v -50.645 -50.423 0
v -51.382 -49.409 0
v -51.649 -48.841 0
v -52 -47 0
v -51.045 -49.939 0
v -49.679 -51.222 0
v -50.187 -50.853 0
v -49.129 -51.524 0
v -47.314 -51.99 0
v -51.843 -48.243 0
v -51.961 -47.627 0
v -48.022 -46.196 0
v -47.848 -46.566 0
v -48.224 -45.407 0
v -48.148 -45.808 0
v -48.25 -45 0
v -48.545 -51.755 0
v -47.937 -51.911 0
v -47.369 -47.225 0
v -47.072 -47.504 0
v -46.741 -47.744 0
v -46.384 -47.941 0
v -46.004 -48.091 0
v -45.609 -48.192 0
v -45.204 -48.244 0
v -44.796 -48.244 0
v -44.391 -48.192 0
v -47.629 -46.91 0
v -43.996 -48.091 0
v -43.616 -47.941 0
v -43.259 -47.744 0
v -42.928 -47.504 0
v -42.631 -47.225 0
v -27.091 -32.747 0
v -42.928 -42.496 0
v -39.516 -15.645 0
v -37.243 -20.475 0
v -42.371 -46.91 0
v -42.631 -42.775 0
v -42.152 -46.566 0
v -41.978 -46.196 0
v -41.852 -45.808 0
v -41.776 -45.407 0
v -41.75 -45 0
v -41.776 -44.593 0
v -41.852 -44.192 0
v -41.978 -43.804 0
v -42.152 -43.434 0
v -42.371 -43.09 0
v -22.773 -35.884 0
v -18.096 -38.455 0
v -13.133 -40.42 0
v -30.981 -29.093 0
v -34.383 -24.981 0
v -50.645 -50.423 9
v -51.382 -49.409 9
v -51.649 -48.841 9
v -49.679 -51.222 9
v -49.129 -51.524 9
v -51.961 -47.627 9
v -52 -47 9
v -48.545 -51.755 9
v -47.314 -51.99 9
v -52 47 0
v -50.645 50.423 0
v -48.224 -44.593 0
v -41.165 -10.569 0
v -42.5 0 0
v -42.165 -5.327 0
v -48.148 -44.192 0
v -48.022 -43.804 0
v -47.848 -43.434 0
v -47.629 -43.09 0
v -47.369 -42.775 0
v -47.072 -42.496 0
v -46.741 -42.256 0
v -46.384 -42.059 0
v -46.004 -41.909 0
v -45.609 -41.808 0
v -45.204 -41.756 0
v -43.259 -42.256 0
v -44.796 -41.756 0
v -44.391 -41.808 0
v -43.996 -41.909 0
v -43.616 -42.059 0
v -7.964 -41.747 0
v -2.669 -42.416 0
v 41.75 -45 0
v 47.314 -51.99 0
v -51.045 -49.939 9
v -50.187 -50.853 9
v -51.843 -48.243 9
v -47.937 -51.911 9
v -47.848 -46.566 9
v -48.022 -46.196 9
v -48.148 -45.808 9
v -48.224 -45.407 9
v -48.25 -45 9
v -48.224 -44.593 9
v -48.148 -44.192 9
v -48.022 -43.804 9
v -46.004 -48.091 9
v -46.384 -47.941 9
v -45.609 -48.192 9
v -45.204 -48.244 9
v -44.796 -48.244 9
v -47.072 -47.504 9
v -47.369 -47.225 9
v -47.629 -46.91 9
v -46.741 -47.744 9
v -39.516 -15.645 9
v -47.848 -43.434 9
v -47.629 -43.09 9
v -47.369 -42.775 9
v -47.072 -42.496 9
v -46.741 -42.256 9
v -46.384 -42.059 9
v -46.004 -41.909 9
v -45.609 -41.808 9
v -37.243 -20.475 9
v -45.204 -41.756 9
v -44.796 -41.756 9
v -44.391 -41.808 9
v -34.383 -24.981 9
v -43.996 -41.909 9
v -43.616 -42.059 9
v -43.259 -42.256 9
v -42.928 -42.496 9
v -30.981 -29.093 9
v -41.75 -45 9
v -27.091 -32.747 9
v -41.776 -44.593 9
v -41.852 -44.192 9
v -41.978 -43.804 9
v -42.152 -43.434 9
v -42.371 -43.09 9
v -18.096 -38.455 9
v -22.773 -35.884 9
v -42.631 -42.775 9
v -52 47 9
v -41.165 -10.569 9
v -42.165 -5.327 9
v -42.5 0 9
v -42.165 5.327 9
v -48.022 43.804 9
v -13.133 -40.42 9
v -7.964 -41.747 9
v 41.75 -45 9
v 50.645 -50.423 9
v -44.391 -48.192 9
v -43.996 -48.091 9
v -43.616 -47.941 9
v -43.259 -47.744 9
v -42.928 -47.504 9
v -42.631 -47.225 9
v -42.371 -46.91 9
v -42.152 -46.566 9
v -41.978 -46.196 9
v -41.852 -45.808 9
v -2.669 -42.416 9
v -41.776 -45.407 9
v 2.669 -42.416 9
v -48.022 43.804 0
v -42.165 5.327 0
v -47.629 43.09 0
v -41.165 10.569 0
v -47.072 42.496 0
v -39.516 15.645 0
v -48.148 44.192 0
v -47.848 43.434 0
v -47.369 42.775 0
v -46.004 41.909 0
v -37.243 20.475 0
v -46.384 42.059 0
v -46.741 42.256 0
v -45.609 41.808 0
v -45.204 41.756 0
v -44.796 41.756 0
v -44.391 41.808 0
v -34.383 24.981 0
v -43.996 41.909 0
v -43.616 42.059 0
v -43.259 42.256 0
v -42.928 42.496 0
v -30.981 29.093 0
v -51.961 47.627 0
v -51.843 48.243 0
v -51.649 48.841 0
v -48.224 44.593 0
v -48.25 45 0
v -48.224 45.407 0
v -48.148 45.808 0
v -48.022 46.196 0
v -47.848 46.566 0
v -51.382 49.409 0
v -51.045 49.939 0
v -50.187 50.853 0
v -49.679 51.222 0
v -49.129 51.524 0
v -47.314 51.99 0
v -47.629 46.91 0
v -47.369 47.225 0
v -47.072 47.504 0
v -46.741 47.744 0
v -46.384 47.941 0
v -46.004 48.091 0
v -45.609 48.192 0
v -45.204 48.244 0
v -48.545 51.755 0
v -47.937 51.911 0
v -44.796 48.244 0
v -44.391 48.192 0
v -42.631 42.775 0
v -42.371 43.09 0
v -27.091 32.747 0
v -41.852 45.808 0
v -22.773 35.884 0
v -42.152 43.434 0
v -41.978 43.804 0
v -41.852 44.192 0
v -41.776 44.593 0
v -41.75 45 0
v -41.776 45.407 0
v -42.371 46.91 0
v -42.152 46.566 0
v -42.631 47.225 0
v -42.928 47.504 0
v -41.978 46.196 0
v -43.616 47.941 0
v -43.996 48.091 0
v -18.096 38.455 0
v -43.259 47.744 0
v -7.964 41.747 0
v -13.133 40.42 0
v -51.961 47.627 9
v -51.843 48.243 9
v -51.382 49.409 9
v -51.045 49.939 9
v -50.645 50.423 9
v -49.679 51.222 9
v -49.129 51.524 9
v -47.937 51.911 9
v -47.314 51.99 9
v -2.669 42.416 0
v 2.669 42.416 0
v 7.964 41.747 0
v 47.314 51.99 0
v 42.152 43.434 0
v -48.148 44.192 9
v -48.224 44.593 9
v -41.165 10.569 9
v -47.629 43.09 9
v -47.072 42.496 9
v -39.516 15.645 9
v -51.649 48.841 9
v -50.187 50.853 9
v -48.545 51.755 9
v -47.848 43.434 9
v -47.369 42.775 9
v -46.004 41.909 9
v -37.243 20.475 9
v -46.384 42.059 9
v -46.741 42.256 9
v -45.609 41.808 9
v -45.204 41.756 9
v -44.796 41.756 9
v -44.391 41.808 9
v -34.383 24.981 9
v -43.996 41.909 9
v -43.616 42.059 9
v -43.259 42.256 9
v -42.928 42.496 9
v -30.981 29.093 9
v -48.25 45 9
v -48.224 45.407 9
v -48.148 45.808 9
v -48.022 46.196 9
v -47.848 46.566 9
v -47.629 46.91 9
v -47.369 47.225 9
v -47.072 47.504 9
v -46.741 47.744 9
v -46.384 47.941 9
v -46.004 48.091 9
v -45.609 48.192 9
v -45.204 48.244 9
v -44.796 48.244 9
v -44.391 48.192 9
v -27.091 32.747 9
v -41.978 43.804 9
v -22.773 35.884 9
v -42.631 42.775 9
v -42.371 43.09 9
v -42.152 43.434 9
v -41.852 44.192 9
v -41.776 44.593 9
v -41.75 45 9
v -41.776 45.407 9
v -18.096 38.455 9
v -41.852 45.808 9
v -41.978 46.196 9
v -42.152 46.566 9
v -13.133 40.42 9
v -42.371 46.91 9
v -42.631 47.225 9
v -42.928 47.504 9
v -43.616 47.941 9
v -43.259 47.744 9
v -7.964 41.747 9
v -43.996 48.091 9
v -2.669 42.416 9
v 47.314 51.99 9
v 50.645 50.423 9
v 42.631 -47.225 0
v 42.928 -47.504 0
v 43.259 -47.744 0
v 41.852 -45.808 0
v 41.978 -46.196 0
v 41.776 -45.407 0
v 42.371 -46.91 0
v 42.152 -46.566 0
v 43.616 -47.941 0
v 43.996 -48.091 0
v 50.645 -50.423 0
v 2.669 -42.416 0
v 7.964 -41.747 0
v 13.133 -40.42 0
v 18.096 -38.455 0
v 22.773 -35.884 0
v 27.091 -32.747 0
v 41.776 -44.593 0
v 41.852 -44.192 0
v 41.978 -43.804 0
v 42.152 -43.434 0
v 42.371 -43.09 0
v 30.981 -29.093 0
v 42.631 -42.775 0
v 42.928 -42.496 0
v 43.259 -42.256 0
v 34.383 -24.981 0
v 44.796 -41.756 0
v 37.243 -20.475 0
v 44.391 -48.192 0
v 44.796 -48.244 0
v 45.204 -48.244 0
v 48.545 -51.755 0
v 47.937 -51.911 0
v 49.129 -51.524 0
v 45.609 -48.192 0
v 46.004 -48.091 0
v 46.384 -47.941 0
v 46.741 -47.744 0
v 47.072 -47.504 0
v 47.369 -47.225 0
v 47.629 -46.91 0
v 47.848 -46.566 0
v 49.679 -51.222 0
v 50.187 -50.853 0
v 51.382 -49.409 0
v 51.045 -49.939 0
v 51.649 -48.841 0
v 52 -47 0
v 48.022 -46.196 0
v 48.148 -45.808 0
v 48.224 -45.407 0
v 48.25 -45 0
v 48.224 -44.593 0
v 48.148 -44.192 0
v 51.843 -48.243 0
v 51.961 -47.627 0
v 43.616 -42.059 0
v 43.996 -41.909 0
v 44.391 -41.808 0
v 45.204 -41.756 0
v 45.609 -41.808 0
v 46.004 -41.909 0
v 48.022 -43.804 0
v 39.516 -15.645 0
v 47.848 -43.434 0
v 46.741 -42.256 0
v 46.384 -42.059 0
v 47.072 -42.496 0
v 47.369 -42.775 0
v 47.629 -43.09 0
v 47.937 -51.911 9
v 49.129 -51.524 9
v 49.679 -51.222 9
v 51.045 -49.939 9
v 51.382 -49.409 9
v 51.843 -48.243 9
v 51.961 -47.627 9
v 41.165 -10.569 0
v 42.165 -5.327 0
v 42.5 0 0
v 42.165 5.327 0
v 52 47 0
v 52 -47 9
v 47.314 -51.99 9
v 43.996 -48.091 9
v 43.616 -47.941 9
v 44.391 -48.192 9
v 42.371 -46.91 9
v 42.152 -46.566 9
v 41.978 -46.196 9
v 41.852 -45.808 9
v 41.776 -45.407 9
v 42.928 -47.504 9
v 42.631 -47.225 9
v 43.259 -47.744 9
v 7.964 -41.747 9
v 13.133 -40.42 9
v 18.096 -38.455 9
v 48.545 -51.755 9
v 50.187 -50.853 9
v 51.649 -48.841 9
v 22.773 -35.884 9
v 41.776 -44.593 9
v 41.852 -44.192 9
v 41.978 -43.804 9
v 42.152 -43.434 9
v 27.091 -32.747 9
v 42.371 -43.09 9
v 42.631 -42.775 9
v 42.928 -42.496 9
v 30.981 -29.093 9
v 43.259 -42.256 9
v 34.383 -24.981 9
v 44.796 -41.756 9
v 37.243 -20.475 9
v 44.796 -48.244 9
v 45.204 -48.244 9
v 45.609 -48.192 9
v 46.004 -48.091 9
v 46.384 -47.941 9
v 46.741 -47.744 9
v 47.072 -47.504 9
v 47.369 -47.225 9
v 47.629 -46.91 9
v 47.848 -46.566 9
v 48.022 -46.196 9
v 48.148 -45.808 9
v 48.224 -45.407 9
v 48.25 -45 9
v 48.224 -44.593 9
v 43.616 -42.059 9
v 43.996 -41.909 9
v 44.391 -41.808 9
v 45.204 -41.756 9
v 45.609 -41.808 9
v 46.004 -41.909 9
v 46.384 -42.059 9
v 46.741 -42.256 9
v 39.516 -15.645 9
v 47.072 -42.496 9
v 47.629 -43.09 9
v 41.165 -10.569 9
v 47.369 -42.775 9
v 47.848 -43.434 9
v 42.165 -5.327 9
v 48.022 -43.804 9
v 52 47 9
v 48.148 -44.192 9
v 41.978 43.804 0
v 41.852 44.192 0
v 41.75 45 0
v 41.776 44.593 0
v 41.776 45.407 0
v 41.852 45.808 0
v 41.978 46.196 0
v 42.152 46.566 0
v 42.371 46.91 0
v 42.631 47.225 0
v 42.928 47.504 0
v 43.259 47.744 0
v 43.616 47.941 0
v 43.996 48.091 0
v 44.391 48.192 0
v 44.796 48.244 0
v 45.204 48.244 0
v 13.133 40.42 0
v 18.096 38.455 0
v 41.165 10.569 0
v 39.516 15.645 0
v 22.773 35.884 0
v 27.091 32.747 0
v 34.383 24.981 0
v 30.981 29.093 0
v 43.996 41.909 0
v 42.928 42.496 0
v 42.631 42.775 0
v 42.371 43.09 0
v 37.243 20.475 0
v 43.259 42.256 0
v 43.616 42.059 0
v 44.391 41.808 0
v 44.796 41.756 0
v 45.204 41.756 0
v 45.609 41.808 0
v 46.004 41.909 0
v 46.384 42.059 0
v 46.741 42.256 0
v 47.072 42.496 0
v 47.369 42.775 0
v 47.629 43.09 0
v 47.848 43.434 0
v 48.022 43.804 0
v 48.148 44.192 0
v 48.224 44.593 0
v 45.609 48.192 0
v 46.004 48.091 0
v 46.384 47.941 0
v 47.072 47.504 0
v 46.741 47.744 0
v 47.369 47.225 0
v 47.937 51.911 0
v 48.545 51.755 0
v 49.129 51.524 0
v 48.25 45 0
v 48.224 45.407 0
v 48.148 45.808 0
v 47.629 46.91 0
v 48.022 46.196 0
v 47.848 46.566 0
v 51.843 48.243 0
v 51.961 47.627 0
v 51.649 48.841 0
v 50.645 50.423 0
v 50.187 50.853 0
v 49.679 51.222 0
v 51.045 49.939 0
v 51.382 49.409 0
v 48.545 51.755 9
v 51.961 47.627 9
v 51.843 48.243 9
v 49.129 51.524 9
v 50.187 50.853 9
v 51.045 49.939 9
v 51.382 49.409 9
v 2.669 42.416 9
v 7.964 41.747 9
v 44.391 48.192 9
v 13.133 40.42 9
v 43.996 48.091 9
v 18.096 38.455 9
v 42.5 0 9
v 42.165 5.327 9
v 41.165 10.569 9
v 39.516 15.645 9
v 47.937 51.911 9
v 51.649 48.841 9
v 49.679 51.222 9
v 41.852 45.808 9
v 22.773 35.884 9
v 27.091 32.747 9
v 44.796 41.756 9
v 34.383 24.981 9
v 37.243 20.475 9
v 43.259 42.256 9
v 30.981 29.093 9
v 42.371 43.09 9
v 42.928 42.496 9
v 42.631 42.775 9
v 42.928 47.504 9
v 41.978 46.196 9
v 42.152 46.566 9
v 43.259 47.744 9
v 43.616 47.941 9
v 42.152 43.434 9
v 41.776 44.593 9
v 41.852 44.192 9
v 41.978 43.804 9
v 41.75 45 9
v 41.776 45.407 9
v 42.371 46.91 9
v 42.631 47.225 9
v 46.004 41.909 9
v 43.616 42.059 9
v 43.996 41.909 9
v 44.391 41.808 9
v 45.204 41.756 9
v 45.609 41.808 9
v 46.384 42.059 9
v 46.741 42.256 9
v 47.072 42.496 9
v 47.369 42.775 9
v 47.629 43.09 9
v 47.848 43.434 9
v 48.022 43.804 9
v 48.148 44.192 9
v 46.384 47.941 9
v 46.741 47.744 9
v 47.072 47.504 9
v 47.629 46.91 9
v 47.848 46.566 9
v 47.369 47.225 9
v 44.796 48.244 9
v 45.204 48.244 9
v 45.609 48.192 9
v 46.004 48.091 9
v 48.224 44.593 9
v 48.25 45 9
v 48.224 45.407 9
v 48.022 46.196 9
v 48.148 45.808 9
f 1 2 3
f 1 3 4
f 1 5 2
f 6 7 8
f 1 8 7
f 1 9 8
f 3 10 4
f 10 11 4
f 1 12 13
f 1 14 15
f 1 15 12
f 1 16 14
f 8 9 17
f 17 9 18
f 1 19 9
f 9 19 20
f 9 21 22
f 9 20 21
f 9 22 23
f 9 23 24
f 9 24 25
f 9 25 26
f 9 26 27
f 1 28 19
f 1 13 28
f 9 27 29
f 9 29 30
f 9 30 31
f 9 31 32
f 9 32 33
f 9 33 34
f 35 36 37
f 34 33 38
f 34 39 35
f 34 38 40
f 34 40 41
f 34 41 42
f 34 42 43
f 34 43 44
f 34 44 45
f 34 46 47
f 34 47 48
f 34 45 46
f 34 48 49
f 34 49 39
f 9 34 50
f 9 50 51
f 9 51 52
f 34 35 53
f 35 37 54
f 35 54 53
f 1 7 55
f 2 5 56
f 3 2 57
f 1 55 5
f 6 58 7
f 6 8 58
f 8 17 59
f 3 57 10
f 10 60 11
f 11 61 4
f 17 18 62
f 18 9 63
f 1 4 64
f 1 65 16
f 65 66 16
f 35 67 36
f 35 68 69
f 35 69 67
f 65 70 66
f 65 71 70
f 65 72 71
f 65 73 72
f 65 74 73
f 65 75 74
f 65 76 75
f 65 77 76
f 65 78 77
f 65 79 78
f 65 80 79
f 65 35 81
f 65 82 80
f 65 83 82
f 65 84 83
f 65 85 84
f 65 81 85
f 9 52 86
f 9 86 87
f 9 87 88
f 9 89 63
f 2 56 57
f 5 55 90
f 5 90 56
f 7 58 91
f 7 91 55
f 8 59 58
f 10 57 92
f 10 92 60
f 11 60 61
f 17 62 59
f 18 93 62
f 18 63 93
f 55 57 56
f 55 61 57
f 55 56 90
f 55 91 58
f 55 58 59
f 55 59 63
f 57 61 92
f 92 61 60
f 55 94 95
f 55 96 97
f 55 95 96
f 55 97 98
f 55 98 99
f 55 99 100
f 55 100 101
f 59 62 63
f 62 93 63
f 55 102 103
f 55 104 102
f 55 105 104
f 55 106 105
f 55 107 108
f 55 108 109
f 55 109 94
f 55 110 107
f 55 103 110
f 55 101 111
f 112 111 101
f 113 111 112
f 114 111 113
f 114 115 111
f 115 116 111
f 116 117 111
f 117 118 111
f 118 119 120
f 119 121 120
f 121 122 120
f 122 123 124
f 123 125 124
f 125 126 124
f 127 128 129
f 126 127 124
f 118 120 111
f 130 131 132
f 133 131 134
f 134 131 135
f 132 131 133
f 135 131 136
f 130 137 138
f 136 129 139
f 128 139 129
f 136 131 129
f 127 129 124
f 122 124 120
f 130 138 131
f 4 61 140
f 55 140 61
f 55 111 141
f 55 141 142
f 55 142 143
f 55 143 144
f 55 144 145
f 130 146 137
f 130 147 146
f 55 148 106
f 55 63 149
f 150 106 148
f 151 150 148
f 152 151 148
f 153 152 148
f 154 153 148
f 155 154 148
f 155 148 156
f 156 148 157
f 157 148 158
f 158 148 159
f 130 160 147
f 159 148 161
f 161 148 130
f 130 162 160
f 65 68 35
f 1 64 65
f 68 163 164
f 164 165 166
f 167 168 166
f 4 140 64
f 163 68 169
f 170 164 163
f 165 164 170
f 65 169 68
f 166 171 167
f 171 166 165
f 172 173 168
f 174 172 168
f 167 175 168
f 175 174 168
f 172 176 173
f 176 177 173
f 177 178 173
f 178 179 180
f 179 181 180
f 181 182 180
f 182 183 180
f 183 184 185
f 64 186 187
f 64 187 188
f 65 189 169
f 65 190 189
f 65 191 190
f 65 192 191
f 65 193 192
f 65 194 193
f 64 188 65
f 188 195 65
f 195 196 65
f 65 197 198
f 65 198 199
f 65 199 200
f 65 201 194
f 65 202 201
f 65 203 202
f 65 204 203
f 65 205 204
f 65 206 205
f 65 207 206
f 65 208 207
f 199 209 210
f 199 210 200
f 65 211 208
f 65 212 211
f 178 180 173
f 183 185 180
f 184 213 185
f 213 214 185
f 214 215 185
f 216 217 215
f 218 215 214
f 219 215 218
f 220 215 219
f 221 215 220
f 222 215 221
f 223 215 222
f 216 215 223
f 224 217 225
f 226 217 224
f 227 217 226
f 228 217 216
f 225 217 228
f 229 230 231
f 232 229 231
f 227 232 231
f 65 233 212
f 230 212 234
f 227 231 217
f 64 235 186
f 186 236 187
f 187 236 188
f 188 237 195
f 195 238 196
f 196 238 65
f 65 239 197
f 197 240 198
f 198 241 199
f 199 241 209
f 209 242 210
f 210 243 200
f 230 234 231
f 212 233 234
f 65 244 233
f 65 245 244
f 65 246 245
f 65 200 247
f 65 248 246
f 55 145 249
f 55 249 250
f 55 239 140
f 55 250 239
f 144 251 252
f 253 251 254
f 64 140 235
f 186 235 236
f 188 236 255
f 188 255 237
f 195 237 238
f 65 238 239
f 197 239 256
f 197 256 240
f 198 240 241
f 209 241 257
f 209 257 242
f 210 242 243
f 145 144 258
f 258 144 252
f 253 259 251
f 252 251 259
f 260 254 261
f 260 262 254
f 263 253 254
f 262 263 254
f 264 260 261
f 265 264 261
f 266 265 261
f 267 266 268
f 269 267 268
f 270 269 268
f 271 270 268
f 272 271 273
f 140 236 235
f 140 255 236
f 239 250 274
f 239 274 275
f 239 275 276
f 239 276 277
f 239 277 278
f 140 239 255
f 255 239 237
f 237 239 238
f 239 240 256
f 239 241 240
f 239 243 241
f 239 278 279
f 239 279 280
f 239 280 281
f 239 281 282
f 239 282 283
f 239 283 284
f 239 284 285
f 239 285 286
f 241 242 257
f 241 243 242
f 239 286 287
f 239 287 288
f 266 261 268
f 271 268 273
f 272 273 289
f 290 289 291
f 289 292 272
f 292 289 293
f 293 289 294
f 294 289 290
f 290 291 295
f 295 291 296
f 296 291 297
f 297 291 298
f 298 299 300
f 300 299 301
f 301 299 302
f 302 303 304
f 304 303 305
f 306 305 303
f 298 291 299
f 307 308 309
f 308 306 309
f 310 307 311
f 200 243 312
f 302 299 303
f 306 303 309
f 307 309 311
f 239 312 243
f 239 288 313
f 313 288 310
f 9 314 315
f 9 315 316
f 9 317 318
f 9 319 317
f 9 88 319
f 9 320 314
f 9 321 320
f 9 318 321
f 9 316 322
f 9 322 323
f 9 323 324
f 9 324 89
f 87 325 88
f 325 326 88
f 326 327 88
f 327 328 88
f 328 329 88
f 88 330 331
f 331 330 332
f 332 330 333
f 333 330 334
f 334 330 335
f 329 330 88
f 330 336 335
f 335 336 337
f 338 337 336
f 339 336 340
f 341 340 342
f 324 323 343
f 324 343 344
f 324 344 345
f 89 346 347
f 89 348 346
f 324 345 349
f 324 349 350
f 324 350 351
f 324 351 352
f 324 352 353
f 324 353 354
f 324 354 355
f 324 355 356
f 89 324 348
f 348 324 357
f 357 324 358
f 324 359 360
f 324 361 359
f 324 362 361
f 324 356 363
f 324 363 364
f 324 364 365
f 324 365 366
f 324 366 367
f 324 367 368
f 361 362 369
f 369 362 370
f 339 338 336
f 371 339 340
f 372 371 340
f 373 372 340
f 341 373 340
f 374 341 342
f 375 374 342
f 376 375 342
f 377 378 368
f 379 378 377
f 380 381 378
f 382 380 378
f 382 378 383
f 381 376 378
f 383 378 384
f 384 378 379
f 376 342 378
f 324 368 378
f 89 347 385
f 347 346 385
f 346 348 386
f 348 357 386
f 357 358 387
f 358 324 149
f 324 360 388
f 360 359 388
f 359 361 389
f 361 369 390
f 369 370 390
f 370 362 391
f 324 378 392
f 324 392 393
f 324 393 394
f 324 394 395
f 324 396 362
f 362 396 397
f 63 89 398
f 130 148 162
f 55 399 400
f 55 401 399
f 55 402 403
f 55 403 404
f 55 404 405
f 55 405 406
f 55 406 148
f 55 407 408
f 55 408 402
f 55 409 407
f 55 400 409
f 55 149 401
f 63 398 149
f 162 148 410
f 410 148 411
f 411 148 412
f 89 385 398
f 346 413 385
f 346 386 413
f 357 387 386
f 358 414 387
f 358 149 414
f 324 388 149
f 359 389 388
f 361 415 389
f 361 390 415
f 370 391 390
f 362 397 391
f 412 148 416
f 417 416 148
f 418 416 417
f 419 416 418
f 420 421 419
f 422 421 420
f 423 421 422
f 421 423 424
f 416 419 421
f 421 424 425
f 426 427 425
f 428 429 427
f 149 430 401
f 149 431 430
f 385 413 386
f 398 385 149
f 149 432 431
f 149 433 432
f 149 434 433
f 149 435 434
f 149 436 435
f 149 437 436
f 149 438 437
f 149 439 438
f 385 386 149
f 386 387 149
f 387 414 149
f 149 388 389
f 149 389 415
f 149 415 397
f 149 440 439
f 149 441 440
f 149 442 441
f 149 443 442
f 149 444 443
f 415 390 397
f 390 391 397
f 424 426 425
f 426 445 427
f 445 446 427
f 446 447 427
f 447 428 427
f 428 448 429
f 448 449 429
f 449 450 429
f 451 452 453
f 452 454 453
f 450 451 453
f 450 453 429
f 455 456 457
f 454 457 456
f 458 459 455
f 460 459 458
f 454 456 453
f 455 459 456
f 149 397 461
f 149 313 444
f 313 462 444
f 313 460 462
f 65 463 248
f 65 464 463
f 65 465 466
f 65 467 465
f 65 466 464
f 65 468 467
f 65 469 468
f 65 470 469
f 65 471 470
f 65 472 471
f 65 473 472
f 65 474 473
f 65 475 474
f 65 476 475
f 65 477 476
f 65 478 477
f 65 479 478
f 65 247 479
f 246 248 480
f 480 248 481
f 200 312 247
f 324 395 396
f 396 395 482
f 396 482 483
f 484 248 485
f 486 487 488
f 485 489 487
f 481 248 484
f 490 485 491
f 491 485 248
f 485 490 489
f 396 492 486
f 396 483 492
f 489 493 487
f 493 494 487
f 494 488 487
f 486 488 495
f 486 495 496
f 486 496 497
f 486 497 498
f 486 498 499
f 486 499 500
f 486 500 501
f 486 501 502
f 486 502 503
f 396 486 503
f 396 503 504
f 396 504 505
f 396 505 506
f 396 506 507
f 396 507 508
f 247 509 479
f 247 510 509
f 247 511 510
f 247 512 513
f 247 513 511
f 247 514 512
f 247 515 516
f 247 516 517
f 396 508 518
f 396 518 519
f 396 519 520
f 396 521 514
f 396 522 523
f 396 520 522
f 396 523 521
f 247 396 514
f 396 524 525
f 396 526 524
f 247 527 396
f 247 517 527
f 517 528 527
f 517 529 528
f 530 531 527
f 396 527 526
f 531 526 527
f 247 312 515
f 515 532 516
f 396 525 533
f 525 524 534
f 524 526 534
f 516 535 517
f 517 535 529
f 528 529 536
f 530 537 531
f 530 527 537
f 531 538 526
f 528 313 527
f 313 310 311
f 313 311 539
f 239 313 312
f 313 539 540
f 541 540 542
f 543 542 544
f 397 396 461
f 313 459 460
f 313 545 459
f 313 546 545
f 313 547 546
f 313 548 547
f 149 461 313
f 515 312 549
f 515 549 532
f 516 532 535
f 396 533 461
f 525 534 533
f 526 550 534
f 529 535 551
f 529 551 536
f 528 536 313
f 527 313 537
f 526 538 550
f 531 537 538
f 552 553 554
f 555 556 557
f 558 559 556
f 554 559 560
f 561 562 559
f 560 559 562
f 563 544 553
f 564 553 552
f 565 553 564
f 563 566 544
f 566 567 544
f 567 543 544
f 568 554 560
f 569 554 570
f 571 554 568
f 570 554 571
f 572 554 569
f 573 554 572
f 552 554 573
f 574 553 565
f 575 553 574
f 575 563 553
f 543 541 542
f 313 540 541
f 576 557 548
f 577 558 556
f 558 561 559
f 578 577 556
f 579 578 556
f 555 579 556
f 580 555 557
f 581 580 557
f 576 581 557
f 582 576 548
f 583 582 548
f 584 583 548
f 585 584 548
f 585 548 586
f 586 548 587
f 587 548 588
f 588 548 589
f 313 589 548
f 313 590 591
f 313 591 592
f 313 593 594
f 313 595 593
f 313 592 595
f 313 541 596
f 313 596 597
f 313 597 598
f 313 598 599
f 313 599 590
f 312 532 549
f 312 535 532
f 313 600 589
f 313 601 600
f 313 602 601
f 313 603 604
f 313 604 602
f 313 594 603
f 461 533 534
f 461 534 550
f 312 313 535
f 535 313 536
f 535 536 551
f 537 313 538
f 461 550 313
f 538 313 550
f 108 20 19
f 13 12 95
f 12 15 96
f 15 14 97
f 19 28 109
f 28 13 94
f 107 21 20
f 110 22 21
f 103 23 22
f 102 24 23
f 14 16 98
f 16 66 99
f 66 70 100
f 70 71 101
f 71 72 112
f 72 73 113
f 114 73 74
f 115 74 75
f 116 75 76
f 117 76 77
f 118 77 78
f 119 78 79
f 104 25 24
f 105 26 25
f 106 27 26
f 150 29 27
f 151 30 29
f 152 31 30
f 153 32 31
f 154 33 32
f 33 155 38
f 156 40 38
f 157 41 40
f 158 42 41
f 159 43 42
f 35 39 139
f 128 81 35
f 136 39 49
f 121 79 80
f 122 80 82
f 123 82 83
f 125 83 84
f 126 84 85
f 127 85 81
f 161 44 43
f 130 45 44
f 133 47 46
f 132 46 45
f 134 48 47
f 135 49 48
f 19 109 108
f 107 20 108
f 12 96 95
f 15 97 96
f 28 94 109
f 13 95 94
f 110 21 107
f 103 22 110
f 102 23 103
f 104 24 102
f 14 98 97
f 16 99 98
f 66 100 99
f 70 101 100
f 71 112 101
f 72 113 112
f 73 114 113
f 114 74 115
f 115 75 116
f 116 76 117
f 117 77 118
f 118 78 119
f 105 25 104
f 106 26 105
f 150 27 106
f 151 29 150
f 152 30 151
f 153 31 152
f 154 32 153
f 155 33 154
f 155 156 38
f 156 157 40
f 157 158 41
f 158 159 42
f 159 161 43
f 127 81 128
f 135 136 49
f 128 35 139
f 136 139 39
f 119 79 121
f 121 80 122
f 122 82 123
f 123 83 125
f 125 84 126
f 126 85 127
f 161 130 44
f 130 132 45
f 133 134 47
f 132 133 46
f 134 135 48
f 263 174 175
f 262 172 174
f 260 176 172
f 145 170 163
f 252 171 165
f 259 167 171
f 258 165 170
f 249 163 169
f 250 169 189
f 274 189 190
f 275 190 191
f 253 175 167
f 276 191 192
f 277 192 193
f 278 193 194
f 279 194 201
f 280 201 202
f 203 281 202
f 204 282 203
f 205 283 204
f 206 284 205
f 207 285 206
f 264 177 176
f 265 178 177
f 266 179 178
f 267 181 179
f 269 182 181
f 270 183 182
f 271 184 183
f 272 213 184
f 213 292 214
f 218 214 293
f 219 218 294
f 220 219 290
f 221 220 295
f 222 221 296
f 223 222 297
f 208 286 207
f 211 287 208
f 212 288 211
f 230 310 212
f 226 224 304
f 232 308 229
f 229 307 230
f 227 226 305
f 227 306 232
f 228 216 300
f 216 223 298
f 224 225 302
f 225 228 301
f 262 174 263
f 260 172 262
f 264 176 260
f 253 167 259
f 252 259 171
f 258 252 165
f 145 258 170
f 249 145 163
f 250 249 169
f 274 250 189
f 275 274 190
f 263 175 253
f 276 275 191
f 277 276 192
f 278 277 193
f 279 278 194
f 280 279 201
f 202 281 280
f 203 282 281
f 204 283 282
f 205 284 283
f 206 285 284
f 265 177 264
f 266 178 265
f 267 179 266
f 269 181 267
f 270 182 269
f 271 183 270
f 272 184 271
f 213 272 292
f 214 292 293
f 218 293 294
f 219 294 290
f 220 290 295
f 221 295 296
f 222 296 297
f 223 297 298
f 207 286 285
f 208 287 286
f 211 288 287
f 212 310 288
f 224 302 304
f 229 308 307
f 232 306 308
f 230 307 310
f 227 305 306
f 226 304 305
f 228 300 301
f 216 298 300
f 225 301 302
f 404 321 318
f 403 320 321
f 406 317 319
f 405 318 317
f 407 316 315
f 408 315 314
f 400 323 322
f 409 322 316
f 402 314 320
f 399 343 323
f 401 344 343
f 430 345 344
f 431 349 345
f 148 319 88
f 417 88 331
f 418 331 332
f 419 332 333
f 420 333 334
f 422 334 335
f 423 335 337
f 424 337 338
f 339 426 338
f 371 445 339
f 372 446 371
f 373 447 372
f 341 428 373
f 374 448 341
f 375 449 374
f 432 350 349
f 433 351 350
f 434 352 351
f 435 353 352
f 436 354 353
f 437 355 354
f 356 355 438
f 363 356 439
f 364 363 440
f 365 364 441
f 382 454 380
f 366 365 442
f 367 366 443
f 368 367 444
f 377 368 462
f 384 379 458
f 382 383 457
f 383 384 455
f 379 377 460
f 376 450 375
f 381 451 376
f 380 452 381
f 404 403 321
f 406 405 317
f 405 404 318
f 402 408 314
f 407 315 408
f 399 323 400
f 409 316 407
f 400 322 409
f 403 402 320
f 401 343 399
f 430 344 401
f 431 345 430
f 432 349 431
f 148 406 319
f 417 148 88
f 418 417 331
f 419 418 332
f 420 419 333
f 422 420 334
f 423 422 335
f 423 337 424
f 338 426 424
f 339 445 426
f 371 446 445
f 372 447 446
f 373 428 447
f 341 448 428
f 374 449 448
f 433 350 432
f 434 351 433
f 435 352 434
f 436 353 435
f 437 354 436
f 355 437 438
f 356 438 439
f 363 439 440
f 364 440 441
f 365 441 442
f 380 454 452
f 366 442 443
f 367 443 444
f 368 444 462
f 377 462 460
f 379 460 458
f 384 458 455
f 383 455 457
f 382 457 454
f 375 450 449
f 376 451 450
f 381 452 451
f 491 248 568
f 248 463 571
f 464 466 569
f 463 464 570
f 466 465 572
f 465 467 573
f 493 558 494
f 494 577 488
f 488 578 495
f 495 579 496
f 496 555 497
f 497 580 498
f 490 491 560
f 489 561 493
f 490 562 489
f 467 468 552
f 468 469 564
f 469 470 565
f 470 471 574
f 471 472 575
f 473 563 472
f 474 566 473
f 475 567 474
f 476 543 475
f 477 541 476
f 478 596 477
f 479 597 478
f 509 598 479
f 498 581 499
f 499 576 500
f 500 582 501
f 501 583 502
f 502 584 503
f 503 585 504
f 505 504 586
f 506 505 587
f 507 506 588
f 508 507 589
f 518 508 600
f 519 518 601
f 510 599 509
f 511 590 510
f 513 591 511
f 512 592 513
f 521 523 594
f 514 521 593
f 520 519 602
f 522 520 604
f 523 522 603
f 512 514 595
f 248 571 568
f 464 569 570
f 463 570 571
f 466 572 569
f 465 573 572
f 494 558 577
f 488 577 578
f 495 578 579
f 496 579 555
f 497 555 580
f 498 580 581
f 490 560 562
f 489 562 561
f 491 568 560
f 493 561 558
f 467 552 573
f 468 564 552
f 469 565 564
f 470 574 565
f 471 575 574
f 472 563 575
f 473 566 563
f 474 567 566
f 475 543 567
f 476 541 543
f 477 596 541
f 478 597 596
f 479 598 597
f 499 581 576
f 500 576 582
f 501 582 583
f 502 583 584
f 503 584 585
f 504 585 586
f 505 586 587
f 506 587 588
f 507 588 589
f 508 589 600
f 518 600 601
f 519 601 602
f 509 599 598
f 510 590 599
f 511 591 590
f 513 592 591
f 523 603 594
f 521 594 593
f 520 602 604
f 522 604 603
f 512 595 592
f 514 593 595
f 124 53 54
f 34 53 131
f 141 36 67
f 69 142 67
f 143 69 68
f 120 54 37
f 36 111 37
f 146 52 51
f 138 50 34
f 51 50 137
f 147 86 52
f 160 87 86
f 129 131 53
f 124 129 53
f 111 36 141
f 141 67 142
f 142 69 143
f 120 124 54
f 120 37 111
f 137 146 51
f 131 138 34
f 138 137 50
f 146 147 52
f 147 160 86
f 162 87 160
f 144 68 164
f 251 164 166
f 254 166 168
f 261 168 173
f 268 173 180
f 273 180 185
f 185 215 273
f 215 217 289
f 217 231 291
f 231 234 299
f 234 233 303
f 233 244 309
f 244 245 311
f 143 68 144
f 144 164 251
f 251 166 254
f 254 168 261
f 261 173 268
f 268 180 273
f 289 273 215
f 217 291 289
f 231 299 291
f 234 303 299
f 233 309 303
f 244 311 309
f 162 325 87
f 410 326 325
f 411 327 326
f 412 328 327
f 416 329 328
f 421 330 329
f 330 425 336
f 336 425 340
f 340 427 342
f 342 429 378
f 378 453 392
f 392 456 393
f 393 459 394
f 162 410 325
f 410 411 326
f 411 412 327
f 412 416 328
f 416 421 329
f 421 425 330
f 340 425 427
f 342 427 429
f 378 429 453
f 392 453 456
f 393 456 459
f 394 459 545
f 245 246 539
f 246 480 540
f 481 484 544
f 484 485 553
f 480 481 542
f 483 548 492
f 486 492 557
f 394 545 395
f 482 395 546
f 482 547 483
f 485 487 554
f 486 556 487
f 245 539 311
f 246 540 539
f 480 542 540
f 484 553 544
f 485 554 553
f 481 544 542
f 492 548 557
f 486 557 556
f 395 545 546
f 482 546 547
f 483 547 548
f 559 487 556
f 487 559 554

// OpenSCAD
$fn = 50;

difference() {
	union() {
		hull() {
			translate(v = [-47.0, 47.0, 0]) {
				cylinder(h = 9, r = 5);
			}
			translate(v = [47.0, 47.0, 0]) {
				cylinder(h = 9, r = 5);
			}
			translate(v = [-47.0, -47.0, 0]) {
				cylinder(h = 9, r = 5);
			}
			translate(v = [47.0, -47.0, 0]) {
				cylinder(h = 9, r = 5);
			}
		}
	}
	union() {
		translate(v = [-45.0, -45.0, -100.0]) {
			cylinder(h = 200, r = 3.25);
		}
		translate(v = [-45.0, 45.0, -100.0]) {
			cylinder(h = 200, r = 3.25);
		}
		translate(v = [45.0, -45.0, -100.0]) {
			cylinder(h = 200, r = 3.25);
		}
		translate(v = [45.0, 45.0, -100.0]) {
			cylinder(h = 200, r = 3.25);
		}
		translate(v = [-45.0, -45.0, -100.0]) {
			cylinder(h = 200, r = 1.8);
		}
		translate(v = [-45.0, 45.0, -100.0]) {
			cylinder(h = 200, r = 1.8);
		}
		translate(v = [45.0, -45.0, -100.0]) {
			cylinder(h = 200, r = 1.8);
		}
		translate(v = [45.0, 45.0, -100.0]) {
			cylinder(h = 200, r = 1.8);
		}
		cylinder(h = 9, r = 42.5);
	}
}
